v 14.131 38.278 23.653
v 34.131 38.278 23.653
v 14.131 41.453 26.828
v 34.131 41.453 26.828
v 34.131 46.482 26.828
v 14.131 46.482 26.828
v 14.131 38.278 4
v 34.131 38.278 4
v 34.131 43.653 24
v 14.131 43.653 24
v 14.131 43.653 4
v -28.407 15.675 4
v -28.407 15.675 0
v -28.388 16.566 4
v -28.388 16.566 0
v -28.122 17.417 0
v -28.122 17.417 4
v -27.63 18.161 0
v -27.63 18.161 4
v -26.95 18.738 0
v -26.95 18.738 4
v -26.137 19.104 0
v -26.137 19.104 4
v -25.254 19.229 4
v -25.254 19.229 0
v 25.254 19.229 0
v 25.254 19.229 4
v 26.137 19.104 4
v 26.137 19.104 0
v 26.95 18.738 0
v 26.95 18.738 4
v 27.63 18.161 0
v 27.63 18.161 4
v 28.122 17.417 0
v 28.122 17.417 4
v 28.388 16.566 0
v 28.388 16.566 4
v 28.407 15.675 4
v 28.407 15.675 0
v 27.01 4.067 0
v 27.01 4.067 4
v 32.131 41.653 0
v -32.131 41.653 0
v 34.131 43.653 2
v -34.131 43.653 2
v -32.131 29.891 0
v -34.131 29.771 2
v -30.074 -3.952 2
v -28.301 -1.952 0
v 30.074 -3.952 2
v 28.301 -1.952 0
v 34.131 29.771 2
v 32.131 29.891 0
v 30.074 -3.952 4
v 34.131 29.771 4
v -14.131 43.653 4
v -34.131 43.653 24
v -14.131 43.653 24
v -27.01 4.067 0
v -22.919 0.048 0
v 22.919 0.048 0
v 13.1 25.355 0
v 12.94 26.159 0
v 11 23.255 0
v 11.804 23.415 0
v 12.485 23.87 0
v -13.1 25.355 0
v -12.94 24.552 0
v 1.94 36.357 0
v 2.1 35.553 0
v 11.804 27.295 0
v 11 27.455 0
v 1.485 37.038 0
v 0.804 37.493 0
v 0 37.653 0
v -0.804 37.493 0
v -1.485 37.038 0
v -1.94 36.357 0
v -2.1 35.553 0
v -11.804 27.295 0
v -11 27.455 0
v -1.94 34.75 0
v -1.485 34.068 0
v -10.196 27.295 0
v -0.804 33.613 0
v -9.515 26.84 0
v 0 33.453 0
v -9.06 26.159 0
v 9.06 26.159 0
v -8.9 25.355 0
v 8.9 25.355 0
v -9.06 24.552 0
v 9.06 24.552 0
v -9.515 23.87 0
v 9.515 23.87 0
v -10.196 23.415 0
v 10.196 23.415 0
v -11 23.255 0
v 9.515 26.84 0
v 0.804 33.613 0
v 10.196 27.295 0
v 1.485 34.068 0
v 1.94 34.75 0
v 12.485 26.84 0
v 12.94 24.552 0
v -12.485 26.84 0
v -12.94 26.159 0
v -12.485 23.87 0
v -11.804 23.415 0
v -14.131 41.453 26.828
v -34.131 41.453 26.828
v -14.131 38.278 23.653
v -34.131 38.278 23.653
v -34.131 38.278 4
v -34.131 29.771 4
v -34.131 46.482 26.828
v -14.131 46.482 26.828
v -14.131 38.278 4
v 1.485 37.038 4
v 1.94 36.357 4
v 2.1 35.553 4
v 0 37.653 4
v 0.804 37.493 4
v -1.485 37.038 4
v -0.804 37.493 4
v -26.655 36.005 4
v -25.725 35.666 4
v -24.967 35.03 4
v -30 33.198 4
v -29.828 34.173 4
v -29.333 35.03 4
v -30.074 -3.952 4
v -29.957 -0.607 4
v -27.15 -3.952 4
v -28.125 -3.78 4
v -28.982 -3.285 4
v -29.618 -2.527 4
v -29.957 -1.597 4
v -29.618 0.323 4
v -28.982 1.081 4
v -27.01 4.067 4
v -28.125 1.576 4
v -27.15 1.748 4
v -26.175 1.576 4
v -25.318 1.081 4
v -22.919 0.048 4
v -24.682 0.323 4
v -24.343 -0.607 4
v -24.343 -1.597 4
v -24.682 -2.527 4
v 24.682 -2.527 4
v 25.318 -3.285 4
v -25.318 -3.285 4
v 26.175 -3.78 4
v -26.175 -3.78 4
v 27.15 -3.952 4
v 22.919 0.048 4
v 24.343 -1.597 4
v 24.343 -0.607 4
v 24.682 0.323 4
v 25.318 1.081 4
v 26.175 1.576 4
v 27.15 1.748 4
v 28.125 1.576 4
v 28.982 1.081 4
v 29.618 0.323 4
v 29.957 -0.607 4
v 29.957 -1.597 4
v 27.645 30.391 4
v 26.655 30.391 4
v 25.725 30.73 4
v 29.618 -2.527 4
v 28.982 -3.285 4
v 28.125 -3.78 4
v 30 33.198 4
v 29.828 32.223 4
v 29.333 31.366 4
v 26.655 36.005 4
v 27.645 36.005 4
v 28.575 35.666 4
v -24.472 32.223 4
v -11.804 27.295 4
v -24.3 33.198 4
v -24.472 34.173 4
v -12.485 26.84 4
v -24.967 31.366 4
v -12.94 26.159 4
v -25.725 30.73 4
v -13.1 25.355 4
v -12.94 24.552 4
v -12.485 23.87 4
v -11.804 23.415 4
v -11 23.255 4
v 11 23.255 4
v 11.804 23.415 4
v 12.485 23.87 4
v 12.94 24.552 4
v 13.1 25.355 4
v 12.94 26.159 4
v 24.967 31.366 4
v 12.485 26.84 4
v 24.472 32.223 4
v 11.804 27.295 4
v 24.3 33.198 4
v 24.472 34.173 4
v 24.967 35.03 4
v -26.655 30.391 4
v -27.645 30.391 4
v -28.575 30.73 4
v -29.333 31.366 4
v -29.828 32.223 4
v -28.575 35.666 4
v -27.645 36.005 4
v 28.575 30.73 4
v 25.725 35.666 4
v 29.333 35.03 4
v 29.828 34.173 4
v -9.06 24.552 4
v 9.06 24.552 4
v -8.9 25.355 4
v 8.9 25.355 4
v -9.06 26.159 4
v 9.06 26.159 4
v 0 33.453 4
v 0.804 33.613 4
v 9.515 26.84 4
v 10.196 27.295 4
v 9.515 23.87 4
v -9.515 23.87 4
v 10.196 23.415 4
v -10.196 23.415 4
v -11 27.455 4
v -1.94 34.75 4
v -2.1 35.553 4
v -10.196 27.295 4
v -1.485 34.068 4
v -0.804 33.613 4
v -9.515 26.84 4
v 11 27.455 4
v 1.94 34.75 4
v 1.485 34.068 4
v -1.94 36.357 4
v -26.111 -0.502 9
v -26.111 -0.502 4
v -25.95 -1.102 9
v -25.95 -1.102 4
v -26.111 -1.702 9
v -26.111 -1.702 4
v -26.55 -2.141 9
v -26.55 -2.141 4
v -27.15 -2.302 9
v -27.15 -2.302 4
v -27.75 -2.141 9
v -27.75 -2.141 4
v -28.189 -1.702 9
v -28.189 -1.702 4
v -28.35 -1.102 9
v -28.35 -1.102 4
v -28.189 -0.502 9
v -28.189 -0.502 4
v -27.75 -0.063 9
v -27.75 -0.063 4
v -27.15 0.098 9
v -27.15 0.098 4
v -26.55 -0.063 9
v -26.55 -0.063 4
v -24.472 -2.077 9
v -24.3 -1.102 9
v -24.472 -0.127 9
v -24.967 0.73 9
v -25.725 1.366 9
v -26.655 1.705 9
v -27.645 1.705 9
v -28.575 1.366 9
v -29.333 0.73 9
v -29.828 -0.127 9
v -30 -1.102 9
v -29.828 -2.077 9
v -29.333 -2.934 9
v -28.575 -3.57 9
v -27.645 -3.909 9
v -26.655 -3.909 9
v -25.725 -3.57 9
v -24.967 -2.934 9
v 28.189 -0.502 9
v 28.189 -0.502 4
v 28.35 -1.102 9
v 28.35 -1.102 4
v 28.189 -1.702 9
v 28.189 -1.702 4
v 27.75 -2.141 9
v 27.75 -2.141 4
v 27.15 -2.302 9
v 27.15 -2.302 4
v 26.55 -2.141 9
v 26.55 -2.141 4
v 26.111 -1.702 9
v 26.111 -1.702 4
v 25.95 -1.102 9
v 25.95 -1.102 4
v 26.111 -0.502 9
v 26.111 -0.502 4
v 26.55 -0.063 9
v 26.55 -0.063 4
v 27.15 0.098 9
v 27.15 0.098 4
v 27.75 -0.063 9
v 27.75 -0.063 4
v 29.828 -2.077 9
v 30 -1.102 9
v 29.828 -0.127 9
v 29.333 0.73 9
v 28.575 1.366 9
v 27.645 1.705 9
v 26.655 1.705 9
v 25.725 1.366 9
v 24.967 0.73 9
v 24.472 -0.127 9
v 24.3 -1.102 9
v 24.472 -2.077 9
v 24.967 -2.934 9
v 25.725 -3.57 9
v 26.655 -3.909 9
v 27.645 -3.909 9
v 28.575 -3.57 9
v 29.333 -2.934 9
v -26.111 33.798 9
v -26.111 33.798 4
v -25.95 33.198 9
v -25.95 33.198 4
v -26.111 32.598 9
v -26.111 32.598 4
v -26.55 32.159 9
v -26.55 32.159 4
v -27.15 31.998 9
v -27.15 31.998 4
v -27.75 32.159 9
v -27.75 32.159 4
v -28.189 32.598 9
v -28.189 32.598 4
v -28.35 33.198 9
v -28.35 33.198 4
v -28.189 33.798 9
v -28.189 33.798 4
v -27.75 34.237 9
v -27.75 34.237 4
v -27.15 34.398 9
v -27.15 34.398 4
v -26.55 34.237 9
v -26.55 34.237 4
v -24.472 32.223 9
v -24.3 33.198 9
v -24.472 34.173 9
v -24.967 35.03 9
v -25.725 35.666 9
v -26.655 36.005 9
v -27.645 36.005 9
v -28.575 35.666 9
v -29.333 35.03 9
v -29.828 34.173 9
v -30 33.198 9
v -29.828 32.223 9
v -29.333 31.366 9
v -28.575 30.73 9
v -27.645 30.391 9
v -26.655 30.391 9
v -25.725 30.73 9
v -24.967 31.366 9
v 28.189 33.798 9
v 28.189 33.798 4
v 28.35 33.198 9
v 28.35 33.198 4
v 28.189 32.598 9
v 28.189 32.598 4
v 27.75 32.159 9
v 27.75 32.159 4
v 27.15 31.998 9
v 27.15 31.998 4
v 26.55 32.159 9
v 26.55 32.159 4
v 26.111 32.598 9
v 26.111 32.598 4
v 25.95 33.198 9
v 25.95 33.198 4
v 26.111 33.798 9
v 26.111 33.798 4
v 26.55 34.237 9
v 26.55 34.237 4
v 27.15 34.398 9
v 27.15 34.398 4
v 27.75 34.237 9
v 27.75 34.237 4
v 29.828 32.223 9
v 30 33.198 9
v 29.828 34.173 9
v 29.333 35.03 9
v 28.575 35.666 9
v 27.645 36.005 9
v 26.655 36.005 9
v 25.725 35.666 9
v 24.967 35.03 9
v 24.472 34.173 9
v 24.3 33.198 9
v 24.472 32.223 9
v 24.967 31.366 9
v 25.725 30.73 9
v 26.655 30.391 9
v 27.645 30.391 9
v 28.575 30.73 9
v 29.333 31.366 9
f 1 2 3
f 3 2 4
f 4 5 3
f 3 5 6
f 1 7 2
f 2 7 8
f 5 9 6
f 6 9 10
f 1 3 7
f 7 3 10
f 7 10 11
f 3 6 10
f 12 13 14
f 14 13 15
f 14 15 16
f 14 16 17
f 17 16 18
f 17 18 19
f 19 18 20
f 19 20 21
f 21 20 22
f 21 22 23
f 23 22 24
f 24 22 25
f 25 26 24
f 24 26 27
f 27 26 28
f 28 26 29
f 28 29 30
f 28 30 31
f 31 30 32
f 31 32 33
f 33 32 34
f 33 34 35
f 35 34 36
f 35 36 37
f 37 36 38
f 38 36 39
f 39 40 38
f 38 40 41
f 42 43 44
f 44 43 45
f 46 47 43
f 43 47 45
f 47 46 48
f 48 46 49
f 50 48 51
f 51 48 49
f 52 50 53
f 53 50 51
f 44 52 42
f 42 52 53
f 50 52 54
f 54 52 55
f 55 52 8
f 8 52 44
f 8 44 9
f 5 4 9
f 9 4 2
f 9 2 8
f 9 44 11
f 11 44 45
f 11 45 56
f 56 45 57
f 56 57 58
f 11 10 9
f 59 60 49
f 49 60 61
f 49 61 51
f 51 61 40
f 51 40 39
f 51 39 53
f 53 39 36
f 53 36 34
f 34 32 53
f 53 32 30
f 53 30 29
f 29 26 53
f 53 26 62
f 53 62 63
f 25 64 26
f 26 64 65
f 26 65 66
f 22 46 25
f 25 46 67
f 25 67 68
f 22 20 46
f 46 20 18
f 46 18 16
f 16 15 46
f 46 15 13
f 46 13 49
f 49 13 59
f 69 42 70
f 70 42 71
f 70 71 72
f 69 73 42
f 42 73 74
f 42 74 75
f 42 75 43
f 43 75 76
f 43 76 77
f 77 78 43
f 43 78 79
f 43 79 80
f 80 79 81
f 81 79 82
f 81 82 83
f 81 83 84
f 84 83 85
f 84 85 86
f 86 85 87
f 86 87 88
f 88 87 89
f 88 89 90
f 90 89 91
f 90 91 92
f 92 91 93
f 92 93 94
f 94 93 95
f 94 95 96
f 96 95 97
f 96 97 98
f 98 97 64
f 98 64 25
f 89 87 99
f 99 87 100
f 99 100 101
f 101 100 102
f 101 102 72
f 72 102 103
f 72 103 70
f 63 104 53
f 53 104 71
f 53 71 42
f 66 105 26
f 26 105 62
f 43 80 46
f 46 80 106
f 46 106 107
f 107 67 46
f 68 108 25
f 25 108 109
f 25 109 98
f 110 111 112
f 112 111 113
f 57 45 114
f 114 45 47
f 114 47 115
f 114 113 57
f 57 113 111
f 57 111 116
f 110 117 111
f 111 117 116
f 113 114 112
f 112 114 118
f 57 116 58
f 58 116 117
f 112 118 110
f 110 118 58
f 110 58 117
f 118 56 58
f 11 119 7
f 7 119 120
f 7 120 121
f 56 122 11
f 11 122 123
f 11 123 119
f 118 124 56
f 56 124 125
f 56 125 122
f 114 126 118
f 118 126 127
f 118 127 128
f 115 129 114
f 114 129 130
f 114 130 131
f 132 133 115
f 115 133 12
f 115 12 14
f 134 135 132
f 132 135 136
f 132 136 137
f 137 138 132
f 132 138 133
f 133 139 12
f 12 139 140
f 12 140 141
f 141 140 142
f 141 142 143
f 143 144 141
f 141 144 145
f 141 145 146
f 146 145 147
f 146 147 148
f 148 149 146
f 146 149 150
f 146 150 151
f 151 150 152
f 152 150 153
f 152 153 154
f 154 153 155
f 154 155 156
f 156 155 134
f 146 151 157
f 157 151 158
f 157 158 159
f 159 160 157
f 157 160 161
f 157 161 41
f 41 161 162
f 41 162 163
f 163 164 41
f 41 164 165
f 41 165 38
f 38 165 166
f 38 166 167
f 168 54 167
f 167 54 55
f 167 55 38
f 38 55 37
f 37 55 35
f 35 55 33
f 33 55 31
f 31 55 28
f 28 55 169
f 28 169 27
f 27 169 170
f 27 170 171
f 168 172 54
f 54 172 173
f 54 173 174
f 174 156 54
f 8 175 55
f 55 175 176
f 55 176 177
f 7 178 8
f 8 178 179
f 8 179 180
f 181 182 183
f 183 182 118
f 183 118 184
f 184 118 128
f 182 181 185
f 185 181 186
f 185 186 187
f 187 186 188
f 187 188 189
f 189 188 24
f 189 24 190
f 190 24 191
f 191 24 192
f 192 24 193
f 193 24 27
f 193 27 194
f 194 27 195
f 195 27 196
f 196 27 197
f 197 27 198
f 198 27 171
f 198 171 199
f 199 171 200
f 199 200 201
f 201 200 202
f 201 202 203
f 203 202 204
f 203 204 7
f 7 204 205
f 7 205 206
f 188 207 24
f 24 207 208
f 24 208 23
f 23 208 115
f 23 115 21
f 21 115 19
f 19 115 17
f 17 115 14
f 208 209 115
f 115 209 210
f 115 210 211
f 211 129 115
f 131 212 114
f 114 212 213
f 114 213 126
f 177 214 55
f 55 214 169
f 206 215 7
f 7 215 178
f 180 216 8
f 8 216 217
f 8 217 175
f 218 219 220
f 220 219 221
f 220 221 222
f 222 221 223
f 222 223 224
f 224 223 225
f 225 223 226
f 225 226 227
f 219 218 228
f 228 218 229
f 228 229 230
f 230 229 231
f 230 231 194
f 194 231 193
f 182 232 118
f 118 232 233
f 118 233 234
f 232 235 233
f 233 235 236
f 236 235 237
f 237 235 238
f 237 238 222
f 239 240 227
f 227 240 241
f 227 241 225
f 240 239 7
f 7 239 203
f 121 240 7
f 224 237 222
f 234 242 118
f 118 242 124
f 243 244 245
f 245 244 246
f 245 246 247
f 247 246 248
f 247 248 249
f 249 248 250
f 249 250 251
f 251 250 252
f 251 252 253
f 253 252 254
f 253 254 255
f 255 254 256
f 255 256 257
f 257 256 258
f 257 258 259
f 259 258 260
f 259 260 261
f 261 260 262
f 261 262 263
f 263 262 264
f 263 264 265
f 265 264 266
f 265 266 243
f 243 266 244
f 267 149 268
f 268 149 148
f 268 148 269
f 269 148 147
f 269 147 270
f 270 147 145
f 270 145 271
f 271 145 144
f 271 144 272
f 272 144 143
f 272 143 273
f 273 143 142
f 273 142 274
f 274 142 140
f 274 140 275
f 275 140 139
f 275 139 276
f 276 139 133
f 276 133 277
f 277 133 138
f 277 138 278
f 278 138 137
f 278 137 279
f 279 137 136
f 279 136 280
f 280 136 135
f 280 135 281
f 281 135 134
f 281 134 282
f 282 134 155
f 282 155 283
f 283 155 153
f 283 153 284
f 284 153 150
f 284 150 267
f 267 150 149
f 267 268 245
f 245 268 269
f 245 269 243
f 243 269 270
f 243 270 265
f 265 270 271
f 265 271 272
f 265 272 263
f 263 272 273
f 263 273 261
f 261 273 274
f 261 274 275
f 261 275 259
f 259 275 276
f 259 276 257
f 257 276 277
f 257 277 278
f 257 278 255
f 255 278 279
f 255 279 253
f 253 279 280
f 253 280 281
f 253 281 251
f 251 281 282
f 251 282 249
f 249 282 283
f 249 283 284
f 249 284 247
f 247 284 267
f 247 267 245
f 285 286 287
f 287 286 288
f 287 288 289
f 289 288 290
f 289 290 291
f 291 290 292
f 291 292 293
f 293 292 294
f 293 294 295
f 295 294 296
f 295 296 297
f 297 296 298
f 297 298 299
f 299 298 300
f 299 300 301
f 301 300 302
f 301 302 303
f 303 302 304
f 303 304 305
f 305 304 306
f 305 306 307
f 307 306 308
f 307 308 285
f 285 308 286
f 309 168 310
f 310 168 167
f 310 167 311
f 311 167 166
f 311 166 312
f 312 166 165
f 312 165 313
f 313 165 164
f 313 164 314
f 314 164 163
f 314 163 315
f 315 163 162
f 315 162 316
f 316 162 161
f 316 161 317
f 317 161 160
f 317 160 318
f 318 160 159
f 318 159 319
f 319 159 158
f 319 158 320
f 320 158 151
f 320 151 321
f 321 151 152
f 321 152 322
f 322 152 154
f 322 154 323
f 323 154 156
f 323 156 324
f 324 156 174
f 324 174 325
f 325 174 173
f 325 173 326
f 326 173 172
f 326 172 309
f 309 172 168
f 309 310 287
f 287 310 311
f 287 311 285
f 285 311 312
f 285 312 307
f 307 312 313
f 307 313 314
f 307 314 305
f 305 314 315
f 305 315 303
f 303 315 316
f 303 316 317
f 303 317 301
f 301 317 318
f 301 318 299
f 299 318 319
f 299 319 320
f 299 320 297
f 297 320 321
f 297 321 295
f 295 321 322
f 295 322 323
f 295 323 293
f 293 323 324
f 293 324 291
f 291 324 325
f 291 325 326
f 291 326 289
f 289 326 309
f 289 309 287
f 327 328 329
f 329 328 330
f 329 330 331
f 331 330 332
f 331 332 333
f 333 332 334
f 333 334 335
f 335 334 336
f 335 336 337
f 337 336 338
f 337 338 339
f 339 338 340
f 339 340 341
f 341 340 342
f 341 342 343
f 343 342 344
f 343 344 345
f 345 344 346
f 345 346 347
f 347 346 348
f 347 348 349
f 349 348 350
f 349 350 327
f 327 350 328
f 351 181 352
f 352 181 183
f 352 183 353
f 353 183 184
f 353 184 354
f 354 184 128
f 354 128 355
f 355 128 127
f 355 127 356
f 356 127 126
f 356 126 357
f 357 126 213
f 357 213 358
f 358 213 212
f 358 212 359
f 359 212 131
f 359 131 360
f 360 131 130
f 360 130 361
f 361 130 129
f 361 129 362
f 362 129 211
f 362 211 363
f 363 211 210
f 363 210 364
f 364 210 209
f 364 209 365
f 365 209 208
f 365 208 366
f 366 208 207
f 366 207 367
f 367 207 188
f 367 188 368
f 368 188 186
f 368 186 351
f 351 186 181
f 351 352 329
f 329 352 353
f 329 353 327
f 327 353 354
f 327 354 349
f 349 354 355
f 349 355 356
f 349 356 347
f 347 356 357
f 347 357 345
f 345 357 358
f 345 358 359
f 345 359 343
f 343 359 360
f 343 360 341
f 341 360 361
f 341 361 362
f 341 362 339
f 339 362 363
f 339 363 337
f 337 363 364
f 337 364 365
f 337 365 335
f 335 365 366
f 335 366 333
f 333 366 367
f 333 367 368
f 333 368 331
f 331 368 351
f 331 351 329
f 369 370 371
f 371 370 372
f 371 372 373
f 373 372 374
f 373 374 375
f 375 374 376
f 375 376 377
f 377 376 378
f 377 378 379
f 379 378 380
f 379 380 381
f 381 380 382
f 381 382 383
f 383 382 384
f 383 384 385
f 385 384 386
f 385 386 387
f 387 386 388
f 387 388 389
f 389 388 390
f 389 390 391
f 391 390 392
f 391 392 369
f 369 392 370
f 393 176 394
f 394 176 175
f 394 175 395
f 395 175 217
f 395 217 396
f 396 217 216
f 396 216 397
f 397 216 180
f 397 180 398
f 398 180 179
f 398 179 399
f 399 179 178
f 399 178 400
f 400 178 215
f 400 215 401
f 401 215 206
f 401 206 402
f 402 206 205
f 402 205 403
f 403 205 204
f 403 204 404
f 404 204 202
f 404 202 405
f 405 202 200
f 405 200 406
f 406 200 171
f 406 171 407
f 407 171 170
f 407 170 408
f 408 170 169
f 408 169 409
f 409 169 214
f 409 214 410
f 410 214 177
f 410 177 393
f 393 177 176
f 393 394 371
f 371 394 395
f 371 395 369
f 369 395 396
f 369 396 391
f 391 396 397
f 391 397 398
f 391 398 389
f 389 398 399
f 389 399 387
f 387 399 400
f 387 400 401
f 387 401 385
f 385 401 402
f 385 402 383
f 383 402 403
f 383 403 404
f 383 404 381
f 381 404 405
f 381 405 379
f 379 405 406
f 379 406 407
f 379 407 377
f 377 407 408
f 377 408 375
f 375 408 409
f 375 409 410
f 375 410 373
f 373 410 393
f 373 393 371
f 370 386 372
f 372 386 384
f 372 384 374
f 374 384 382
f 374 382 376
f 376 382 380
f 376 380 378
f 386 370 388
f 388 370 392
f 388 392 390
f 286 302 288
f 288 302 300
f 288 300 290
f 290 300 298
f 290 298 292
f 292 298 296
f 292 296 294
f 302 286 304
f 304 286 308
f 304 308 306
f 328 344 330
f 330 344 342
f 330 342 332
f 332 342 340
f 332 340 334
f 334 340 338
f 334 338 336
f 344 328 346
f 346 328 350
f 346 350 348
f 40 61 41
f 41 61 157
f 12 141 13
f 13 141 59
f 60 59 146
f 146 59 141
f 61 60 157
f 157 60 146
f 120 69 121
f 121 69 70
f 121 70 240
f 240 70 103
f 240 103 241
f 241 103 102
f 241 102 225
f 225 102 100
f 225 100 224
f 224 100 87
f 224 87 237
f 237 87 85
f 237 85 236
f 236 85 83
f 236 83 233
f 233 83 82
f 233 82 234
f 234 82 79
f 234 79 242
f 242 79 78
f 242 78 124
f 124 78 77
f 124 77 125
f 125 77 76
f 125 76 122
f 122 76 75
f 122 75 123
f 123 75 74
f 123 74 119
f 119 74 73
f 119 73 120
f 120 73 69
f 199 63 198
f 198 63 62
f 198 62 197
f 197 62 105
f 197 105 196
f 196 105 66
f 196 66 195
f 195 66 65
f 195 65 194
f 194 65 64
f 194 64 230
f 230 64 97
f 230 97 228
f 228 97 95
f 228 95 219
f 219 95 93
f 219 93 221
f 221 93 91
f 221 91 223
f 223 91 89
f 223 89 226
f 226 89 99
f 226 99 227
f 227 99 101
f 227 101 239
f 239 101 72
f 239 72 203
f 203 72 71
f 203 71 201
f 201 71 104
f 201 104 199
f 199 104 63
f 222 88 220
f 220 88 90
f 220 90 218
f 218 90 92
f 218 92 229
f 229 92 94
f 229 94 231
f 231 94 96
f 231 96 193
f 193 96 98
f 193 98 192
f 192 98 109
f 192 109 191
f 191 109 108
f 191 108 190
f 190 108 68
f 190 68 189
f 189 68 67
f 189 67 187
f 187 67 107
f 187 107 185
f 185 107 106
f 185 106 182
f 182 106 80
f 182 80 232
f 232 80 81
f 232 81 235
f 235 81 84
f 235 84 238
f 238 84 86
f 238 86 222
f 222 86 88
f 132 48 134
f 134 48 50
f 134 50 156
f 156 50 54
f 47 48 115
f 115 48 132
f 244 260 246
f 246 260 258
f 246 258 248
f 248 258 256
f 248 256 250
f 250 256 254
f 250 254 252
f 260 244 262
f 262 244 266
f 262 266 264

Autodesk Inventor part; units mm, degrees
ref_plane "XZ Plane" through (0, 0, 0) normal (0, 1, 0) x (-1, 0, 0)
ref_plane "XY Plane" through (0, 0, 0) normal (0, 0, 1) x (1, 0, 0)
sketch "Sketch1" plane through (0, 0, 0) normal (0, 0, 1) x (1, 0, 0)
  circle A0 centre (0, 35.5533) radius 2.1 projected
  circle A1 centre (11, 25.3552) radius 2.1 projected
  circle A2 centre (-11, 25.3552) radius 2.1 projected
  circle A3 centre (6.25, -60.9016) radius 2.1 projected
  circle A4 centre (-33.6286, -15.6738) radius 2.1 projected
  circle A5 centre (-5.75, -60.9016) radius 2.1 projected
  circle A6 centre (34.1286, -15.6738) radius 2.1 projected
  circle A7 centre (-24.1373, -40.1344) radius 6.75 projected
  circle A8 centre (24.6373, -40.1344) radius 6.75 projected
  circle A9 centre (10.7484, -21.5639) radius 2.1 projected
  circle A10 centre (-10.2484, -21.5639) radius 2.1 projected
  line L0 (-59, -41.44) -> (-59, -14.3421) projected
  line L1 (-59, -41.44) -> (-53, -41.44) projected
  line L2 (-53, -41.44) -> (-53, -91.44) projected
  line L3 (-53, -91.44) -> (53, -91.44) projected
  line L4 (53, -91.44) -> (53, -41.44) projected
  line L5 (53, -41.44) -> (59, -41.44) projected
  line L6 (59, -14.3421) -> (59, -41.44) projected
  line L7 (59, -14.3421) -> (54, -14.3421) projected
  line L8 (54, -14.3421) -> (54, 35.0192) projected
  line L9 (54, 35.0192) -> (59, 35.0192) projected
  line L10 (59, 80.19) -> (59, 35.0192) projected
  line L11 (59, 80.19) -> (46.35, 80.19) projected
  line L12 (46.35, 80.19) -> (46.35, 63.44) projected
  line L13 (46.35, 63.44) -> (-46.35, 63.44) projected
  line L14 (-46.35, 63.44) -> (-46.35, 80.19) projected
  line L15 (-46.35, 80.19) -> (-59, 80.19) projected
  line L16 (-59, 35.0192) -> (-59, 80.19) projected
  line L17 (-59, 35.0192) -> (-54, 35.0192) projected
  line L18 (-54, 35.0192) -> (-54, -14.3421) projected
  line L19 (-54, -14.3421) -> (-59, -14.3421) projected
  circle A11 centre (0, 35.5533) radius 6.1 construction
  line L20 (34.1312, 49.9126) -> (34.1312, 18.1374) construction
  line L21 (-34.1313, 18.1374) -> (-34.1313, 49.9126) construction
  line L22 (34.1312, 43.6533) -> (-34.1313, 43.6533)
  line L23 (-34.1313, 43.6533) -> (-34.1312, 29.7711)
  line L24 (-30.0745, -3.9522) -> (30.0745, -3.9522)
  line L25 (34.1312, 29.7711) -> (34.1312, 43.6533)
  line L26 (-30, -3.9121) -> (30, -3.9121) construction
  line L27 (30, -3.9121) -> (30, 36.0879) construction
  line L28 (30, 36.0879) -> (-30, 36.0879) construction
  line L29 (-30, 36.0879) -> (-30, -3.9121) construction
  line L30 (-30, -3.9121) -> (30, 36.0879) construction
  line L31 (30, -3.9121) -> (-30, 36.0879) construction
  line L32 (-34.1312, 29.7711) -> (-30.0745, -3.9522)
  line L33 (0, 16.0879) -> (0, 8.3045) construction
  line L34 (34.1312, 29.7711) -> (30.0745, -3.9522)
  line L35 (26.5268, 0.0478) -> (-26.5268, 0.0478)
  line L36 (-26.5268, 0.0478) -> (-30.1312, 30.0109)
  line L37 (-30.1312, 30.0109) -> (-30.1312, 39.6533)
  line L38 (-30.1312, 39.6533) -> (30.1312, 39.6533)
  line L39 (30.1312, 39.6533) -> (30.1312, 30.0109)
  line L40 (30.1312, 30.0109) -> (26.5268, 0.0478)
  line L41 (-28.8342, 19.2288) -> (28.8342, 19.2288)
  line L42 (-27.0103, 4.0668) -> (-22.9193, 0.0478)
  line L43 (27.0103, 4.0668) -> (22.9193, 0.0478)
  point P0 (0, 0)
  point P1 (30.0601, -3.9522)
  point P2 (34.1312, 29.891)
  point P3 (22.9193, 0.0478)
  dimension "d0" = 4
  dimension "d3" = 60
  dimension "d4" = 40
  dimension "d5" = 4
extrude "Extrusion1" add sketch "Sketch1" along normal blind 4 contours L25 L34 L24 L32 L23 L22 | L35 L43 L40 | L35 L36 L42 | L41 L36 L37 L38 L39 L40
sketch "Sketch2" plane through (0, 0, 4) normal (0, 0, 1) x (1, 0, 0)
  line L0 (-30, 36.0478) -> (30, 36.0478)
  line L1 (30, 36.0478) -> (30, -3.9522)
  line L2 (30, -3.9522) -> (-30, -3.9522)
  line L3 (-30, -3.9522) -> (-30, 36.0478)
  line L4 (-30, 36.0478) -> (30, -3.9522) construction
  line L5 (30, 36.0478) -> (-30, -3.9522) construction
  line L6 (-30.0745, -3.9522) -> (30.0745, -3.9522) construction
  circle A0 centre (27.15, -1.1022) radius 1 construction
  circle A1 centre (27.15, -1.1022) radius 1.2
  circle A2 centre (27.15, -1.1022) radius 2.85
  line L7 (30, 16.0478) -> (-30, 16.0478) construction
  line L8 (0, 36.0478) -> (0, -3.9522) construction
  circle A3 centre (27.15, 33.1978) radius 1.2
  circle A4 centre (27.15, 33.1978) radius 2.85
  circle A5 centre (-27.15, -1.1022) radius 1.2
  circle A6 centre (-27.15, -1.1022) radius 2.85
  circle A7 centre (-27.15, 33.1978) radius 1.2
  circle A8 centre (-27.15, 33.1978) radius 2.85
  point P0 (0, 0)
  point P1 (0, 16.0478)
  dimension "d6" = 60
  dimension "d7" = 40
  dimension "d8" = 2
  dimension "d9" = 2.85
  dimension "d10" = 2.85
  dimension "d11" = 0.2
extrude "Extrusion2" add sketch "Sketch2" along normal blind 5 contours A8 | A4 | A6 | A2
sketch "Sketch3" plane through (-34.1312, 29.7711, 0) normal (-1, 0, 0) x (0, 0, 1)
  line L0 (4, 13.8821) -> (4, 0) projected
  line L1 (4, 13.8821) -> (24, 13.8821)
  line L2 (24, 13.8821) -> (24, 8.5067)
  line L3 (24, 8.5067) -> (4, 8.5067)
  line L4 (4, 8.5067) -> (4, 13.8821)
  line L5 (24, 13.8821) -> (26.8284, 16.7106)
  line L6 (24, 13.8821) -> (28, 13.8821) construction
  line L7 (26.8284, 16.7106) -> (26.8284, 8.5067)
  line L8 (26.8284, 8.5067) -> (24, 8.5067)
  point P0 (0, -29.7711)
  point P1 (4, 8.5067)
  dimension "d14" = 20
  dimension "d15" = 4
  dimension "d16" = 45
extrude "Extrusion3" add sketch "Sketch3" against normal blind 20
chamfer "Chamfer1" distance 3.175 angle 45 1 edges at (-24.1313, 38.2779, 26.8284)
chamfer "Chamfer2" distance 2 angle 45 6 edges at (-32.1029, 12.9095, 0) (0, -3.9522, 0) (32.1029, 12.9095, 0) (34.1312, 36.7122, 0) (0, 43.6533, 0) (-34.1313, 36.7122, 0)
fillet "Fillet1" radius 3.175 2 edges at (28.8342, 19.2288, 2) (-28.8342, 19.2288, 2)
mirror "Mirror1" about plane through (0, 0, 0) normal (1, 0, 0) of "Extrusion3", "Chamfer1"
equation "\"d10\" = d9"
properties part number "Esp32_Holder"
